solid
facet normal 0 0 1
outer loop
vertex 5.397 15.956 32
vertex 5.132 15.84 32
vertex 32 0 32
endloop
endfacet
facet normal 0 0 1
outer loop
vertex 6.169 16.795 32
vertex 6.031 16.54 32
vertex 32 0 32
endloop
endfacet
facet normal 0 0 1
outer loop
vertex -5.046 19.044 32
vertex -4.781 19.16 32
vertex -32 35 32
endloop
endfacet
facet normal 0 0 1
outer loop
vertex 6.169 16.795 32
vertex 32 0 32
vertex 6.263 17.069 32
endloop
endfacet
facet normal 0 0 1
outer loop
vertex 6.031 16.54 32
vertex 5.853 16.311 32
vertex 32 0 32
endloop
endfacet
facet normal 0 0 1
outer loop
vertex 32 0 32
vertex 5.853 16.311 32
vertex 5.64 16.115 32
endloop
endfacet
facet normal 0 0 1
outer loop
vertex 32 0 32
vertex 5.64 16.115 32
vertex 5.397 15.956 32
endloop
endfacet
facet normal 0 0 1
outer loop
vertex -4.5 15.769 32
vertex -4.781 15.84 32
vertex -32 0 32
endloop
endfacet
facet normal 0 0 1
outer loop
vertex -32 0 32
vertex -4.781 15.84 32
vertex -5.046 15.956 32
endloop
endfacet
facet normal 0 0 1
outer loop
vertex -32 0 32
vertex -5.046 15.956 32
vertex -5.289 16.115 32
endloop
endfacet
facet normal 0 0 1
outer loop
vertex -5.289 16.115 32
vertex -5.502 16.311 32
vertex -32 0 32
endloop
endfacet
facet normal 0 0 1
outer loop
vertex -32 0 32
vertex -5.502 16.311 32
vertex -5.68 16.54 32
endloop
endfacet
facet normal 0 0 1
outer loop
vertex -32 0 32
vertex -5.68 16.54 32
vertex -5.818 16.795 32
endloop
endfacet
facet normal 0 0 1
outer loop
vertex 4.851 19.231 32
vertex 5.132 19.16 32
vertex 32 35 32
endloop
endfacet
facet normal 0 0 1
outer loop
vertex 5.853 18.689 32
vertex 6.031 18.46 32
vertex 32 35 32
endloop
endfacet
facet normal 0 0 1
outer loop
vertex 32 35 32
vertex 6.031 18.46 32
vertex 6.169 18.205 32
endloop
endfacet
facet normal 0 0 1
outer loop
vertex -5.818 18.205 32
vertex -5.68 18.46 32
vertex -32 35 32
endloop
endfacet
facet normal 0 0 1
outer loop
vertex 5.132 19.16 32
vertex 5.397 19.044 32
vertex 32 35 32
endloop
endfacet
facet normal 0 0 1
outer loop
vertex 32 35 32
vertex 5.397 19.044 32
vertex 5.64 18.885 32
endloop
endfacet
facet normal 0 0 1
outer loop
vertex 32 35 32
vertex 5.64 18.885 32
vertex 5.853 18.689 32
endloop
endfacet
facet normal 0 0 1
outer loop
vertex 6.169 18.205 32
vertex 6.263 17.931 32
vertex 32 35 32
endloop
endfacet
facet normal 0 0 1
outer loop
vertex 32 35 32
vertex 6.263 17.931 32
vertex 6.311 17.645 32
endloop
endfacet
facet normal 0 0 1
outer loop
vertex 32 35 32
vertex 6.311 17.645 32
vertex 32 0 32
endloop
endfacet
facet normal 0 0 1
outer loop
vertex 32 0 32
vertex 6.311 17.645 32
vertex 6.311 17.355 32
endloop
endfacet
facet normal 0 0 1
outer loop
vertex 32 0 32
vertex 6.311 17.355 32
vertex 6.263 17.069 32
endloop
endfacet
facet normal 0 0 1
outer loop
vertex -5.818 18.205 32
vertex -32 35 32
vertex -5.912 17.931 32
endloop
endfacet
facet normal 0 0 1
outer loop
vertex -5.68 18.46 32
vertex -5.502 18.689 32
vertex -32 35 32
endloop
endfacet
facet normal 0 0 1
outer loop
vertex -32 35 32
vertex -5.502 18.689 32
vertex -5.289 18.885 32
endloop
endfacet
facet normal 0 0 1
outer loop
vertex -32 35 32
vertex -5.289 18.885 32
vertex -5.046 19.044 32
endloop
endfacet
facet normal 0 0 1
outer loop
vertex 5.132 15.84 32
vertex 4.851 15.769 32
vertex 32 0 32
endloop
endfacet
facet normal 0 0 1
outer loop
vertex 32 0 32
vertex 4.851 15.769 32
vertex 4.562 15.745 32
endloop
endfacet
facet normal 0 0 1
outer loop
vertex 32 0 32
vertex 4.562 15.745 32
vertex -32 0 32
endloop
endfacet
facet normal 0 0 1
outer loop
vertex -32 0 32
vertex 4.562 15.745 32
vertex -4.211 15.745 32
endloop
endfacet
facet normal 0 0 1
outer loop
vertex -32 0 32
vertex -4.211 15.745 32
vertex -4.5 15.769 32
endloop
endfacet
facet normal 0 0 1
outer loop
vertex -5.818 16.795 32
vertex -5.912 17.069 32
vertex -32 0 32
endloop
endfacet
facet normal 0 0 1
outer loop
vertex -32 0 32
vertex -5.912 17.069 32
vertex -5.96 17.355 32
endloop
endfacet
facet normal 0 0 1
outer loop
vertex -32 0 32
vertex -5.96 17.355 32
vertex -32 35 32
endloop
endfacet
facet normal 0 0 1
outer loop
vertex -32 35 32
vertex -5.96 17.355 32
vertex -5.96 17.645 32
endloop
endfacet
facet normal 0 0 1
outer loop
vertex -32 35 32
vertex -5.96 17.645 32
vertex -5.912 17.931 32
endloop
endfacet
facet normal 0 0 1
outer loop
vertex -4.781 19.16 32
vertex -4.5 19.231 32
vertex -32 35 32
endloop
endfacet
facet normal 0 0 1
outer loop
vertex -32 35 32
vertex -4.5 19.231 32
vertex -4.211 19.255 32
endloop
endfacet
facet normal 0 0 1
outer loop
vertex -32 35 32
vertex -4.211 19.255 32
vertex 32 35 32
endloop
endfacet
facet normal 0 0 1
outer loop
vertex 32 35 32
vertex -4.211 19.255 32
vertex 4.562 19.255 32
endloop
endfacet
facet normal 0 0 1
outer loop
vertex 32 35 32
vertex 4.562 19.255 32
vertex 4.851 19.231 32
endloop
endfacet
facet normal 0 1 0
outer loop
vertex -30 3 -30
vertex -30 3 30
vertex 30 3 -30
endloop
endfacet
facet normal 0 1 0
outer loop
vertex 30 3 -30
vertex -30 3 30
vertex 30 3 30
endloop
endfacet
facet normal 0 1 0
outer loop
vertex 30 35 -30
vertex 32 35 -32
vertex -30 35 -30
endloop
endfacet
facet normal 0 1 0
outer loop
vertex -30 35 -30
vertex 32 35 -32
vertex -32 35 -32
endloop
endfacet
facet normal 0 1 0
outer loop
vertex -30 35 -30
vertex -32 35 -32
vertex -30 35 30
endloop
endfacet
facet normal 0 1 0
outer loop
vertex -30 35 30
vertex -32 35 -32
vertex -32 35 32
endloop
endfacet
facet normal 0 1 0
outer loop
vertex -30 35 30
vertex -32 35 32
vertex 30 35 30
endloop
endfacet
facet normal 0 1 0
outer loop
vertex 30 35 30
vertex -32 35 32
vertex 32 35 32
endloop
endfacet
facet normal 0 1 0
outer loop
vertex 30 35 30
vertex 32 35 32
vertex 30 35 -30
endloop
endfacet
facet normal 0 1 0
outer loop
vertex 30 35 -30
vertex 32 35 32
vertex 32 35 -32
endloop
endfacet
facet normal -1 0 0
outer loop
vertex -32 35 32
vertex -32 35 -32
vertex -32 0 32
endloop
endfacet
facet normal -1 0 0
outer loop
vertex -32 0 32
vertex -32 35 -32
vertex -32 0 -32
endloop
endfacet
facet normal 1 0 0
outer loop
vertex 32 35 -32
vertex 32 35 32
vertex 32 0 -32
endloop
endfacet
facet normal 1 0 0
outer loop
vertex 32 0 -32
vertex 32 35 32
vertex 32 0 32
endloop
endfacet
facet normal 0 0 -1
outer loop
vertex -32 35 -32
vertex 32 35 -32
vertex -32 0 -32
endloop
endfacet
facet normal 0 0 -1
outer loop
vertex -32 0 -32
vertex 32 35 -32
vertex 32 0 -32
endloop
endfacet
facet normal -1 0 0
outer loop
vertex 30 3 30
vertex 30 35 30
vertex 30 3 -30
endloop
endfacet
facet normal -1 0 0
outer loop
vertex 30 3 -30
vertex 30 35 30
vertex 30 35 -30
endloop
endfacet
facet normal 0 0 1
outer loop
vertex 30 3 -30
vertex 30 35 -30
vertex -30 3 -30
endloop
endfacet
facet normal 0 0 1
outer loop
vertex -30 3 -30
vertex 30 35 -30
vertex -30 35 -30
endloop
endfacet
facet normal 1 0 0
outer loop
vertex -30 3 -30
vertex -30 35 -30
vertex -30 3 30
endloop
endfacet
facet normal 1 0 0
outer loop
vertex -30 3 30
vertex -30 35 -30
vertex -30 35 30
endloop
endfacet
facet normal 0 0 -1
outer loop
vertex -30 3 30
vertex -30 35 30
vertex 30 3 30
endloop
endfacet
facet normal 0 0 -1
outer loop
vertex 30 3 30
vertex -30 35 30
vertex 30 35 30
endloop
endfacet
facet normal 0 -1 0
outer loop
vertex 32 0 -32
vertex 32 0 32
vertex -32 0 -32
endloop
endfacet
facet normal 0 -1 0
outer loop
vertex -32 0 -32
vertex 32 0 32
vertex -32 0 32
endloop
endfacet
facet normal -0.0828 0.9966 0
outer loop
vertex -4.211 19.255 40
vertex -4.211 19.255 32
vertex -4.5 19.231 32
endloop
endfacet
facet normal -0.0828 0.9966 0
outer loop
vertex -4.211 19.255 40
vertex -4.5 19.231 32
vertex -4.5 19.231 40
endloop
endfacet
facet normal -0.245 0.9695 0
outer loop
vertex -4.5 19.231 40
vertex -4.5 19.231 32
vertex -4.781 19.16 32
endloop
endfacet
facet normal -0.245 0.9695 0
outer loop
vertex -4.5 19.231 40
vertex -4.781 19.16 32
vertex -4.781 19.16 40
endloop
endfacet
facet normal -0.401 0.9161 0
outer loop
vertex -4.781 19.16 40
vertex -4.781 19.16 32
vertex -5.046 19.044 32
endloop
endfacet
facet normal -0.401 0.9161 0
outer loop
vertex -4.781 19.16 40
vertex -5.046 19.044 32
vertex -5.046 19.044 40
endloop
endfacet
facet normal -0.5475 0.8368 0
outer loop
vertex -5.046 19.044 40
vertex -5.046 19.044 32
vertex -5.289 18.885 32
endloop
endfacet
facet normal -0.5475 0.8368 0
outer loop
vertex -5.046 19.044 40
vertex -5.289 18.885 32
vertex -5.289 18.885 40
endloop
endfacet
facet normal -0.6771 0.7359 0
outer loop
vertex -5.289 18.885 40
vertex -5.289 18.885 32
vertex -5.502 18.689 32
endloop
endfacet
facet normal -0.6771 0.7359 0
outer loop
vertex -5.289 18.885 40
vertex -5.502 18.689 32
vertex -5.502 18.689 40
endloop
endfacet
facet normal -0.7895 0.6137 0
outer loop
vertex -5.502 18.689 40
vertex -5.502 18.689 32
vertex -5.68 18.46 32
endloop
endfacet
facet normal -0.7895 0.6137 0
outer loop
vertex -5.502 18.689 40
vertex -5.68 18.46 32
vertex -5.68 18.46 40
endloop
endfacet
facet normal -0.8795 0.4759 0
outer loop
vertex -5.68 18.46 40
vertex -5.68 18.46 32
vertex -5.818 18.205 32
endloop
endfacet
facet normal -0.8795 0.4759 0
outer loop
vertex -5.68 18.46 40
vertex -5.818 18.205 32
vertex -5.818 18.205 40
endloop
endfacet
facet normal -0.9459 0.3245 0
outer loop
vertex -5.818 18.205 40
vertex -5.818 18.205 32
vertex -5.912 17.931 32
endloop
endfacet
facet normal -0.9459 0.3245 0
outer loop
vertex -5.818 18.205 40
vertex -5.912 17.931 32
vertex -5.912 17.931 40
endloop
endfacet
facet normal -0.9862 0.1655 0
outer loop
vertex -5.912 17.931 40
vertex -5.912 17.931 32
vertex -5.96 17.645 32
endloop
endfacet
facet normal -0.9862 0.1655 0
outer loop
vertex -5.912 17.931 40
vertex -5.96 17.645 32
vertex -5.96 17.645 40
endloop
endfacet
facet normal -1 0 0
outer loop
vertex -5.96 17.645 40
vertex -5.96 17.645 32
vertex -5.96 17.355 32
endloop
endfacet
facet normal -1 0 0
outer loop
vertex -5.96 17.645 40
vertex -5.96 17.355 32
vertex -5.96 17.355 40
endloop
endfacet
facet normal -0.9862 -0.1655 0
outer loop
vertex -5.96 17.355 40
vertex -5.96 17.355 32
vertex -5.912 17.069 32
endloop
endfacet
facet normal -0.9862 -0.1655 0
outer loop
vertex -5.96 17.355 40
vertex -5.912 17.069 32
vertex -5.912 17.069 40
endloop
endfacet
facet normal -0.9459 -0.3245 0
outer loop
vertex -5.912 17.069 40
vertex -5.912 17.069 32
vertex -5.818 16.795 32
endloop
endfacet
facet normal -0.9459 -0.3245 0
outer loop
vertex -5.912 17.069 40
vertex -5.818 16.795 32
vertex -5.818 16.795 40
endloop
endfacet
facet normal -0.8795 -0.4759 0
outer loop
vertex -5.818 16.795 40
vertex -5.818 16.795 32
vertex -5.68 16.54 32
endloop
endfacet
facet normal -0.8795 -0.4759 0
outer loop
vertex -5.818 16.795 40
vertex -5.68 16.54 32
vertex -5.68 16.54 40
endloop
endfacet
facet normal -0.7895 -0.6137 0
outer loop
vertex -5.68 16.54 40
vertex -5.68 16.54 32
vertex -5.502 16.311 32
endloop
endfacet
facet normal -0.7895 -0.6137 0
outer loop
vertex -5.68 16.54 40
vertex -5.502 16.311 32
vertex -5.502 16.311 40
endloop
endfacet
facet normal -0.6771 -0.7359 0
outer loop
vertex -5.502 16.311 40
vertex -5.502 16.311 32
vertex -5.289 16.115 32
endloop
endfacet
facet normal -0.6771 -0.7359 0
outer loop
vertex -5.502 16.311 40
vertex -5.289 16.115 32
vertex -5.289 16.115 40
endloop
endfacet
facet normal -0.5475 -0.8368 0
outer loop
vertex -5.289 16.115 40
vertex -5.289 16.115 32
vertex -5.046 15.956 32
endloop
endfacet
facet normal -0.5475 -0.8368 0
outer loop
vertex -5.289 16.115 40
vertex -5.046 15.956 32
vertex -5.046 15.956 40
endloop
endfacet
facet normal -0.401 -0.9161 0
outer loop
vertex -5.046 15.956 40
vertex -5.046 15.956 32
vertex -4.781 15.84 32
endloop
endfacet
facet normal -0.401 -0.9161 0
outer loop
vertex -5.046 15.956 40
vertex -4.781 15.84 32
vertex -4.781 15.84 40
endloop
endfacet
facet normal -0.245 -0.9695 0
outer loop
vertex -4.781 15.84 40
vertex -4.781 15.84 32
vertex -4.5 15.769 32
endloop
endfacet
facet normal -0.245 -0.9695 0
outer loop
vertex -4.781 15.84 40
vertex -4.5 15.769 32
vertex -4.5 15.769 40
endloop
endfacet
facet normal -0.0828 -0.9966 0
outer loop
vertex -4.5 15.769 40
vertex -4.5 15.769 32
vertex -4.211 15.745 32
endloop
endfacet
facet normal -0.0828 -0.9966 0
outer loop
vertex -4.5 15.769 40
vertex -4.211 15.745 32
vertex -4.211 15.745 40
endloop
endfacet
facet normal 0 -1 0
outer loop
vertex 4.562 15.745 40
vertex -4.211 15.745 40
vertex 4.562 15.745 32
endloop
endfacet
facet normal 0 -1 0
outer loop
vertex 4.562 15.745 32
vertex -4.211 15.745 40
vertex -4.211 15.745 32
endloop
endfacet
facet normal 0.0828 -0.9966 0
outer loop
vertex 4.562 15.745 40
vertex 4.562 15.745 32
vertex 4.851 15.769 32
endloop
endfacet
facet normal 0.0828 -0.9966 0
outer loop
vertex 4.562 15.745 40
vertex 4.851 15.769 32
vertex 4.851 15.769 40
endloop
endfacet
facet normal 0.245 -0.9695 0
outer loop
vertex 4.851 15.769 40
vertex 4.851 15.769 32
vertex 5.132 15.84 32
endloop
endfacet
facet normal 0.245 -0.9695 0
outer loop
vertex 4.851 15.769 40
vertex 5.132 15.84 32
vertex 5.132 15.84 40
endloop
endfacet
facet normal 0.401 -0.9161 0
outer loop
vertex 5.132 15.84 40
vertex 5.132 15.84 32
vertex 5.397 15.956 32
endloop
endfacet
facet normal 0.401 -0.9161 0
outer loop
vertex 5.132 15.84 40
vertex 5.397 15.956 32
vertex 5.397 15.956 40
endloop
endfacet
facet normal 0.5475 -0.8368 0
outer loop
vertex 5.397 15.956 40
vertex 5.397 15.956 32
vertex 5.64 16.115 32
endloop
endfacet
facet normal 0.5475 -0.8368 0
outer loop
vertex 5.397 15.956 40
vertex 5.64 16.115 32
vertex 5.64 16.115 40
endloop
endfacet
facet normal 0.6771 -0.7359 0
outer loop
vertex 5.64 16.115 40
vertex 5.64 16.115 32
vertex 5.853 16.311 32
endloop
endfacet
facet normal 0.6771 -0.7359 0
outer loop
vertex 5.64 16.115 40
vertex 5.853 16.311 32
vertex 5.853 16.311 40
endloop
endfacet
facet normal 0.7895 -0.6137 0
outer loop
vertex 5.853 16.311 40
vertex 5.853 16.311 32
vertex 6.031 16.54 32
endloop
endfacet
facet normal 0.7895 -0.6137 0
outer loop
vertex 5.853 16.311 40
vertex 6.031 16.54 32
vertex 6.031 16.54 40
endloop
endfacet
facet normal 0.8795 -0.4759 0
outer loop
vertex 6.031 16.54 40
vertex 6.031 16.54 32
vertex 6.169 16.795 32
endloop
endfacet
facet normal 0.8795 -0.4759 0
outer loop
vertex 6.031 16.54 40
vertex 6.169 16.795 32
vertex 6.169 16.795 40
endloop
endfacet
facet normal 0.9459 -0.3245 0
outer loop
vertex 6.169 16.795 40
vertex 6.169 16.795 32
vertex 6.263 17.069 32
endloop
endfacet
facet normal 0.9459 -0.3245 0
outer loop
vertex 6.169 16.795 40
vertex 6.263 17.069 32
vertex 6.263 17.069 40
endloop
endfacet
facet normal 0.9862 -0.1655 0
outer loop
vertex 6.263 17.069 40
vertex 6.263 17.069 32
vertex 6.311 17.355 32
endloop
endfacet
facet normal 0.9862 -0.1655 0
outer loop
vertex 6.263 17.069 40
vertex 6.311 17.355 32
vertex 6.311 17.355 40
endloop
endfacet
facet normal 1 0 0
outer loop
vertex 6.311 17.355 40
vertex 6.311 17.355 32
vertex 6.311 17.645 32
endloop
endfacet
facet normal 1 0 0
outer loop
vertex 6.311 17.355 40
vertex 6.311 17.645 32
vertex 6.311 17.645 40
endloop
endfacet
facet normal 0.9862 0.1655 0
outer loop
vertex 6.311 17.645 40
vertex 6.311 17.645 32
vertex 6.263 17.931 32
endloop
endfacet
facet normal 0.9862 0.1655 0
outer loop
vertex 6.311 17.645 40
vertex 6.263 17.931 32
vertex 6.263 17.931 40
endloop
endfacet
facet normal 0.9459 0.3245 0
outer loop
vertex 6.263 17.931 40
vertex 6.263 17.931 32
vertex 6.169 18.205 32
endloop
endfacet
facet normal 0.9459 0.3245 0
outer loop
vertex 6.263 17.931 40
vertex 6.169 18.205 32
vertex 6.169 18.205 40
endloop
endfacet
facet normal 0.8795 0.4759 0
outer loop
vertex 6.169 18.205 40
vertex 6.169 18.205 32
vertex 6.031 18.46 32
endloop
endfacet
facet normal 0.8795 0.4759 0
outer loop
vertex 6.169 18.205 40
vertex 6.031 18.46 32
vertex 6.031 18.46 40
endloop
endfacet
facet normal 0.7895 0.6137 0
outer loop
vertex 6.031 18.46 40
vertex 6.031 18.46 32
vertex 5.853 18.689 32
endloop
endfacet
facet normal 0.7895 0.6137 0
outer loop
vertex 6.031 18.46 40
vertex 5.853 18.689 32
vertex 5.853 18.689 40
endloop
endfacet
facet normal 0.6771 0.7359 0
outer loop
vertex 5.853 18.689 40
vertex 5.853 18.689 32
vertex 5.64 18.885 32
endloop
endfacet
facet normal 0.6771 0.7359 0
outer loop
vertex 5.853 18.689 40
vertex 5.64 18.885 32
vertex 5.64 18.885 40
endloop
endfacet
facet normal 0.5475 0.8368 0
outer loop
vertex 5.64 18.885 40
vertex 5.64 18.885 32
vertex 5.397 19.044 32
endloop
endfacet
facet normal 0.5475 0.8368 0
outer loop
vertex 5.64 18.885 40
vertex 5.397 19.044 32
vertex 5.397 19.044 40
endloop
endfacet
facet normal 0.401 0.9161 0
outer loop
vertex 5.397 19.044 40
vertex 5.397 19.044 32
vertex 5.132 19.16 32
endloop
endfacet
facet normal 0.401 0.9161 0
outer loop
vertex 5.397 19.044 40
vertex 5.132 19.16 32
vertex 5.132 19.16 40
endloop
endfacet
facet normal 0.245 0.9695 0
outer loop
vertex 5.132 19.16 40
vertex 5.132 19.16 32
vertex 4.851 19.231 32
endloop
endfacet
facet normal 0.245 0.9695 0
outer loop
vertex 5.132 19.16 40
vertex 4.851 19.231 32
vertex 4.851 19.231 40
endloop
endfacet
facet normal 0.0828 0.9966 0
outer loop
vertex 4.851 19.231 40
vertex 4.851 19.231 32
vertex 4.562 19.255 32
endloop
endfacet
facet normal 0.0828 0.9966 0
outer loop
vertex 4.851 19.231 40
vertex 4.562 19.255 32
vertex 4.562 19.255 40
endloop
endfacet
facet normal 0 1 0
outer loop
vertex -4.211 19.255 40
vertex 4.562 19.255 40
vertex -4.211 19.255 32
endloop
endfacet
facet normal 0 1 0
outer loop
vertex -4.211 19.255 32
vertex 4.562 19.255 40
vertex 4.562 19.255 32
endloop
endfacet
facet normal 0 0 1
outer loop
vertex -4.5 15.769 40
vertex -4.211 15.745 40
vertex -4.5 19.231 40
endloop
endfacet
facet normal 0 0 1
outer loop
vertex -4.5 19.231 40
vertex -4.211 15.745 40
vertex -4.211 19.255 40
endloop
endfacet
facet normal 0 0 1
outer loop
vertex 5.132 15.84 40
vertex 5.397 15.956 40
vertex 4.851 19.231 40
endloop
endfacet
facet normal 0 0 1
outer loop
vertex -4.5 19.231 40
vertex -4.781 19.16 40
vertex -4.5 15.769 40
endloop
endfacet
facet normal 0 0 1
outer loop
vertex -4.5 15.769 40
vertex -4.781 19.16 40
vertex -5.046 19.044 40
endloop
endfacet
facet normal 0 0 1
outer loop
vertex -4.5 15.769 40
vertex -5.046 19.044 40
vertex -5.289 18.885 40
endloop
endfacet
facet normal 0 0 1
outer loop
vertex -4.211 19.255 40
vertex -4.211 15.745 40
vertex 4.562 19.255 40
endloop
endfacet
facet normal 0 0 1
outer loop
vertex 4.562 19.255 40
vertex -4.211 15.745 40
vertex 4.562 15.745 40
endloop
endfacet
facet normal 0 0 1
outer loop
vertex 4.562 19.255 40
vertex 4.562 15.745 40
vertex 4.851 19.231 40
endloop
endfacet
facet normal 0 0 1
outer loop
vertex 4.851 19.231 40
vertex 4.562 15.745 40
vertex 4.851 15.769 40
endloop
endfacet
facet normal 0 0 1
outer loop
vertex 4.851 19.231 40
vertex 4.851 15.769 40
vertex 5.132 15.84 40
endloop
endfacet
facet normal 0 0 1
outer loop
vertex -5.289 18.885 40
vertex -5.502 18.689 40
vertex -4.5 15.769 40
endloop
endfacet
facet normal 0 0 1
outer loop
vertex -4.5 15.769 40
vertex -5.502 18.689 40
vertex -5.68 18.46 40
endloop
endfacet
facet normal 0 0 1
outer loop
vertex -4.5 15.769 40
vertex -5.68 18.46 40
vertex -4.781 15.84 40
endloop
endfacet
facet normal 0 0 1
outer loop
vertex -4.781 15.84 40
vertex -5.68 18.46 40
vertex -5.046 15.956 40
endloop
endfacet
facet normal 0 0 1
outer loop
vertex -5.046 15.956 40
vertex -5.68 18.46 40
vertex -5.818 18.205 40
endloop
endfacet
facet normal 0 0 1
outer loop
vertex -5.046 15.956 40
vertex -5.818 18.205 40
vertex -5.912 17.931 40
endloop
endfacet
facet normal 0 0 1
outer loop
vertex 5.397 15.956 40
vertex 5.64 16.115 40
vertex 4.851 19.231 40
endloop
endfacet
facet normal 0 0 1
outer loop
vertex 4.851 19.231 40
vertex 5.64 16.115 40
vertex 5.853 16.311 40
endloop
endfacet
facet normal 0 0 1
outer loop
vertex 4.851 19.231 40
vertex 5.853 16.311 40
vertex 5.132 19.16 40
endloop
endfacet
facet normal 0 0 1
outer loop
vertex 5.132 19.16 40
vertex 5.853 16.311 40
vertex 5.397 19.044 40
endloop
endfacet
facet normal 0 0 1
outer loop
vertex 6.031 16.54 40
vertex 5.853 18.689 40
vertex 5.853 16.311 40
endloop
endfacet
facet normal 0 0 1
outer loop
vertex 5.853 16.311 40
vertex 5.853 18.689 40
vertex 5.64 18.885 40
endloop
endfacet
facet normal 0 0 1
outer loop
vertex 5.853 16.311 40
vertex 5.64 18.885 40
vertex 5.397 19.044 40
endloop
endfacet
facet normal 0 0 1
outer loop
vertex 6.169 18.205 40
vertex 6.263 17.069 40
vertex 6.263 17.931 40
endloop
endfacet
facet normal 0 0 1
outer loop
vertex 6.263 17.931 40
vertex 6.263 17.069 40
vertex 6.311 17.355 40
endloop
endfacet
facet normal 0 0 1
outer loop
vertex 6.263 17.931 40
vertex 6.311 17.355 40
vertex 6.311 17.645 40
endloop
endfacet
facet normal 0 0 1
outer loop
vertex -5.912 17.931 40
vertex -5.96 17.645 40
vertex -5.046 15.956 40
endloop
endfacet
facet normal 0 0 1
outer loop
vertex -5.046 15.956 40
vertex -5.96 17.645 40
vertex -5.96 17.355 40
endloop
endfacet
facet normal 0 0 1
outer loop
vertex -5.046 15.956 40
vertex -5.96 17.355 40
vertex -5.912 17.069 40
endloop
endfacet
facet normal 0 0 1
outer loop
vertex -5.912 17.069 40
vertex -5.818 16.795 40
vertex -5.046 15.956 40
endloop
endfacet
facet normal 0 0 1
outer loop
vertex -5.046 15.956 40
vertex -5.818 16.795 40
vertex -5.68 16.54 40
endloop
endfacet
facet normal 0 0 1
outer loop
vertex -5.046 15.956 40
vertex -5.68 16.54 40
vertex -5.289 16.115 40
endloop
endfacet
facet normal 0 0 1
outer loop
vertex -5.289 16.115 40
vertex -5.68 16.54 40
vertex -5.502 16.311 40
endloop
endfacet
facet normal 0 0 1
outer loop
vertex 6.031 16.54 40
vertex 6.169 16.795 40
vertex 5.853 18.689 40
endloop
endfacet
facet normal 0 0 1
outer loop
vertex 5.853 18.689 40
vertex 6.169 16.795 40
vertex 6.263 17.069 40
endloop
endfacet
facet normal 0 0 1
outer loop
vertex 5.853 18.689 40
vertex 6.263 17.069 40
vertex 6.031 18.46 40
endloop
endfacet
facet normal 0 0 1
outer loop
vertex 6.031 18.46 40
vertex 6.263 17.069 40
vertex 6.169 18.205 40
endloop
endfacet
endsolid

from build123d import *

# Parameters (mm, degrees)
SKETCH_1_W      = 60
SKETCH_1_H      = 60
EXTRUDE_1_DEPTH = 3
SKETCH_2_W      = 60
SKETCH_2_H      = 60
EXTRUDE_2_DEPTH = 35
EXTRUDE_3_DEPTH = 8


with BuildPart() as part:
    # 草图1 → 凸台-拉伸1 (new body)
    with BuildSketch(Plane(origin=(0, 0, 0), x_dir=(1, 0, 0), z_dir=(0, 1, 0))):
        Rectangle(SKETCH_1_W, SKETCH_1_H)
    extrude(amount=EXTRUDE_1_DEPTH)

    # 草图2 → 凸台-拉伸2 (add)
    with BuildSketch(Plane(origin=(0, 0, 0), x_dir=(1, 0, 0), z_dir=(0, 1, 0))):
        Polygon((-30, 32), (32, 32), (32, -32), (-32, -32), (-32, 32), align=None)
        Rectangle(SKETCH_2_W, SKETCH_2_H, mode=Mode.SUBTRACT)
    extrude(amount=EXTRUDE_2_DEPTH)

    # 草图3 → 凸台-拉伸3 (add)
    with BuildSketch(Plane.XY.offset(32)):
        with BuildLine():
            Line((-4.210680383, 19.255087703), (4.561970296, 19.255087703))
            ThreePointArc((4.561970296, 19.255087703), (6.317057998, 17.5), (4.561970296, 15.744912297))
            Line((4.561970296, 15.744912297), (-4.210680383, 15.744912297))
            ThreePointArc((-4.210680383, 15.744912297), (-5.965768086, 17.5), (-4.210680383, 19.255087703))
        make_face()
    extrude(amount=EXTRUDE_3_DEPTH)


solid = part.part
